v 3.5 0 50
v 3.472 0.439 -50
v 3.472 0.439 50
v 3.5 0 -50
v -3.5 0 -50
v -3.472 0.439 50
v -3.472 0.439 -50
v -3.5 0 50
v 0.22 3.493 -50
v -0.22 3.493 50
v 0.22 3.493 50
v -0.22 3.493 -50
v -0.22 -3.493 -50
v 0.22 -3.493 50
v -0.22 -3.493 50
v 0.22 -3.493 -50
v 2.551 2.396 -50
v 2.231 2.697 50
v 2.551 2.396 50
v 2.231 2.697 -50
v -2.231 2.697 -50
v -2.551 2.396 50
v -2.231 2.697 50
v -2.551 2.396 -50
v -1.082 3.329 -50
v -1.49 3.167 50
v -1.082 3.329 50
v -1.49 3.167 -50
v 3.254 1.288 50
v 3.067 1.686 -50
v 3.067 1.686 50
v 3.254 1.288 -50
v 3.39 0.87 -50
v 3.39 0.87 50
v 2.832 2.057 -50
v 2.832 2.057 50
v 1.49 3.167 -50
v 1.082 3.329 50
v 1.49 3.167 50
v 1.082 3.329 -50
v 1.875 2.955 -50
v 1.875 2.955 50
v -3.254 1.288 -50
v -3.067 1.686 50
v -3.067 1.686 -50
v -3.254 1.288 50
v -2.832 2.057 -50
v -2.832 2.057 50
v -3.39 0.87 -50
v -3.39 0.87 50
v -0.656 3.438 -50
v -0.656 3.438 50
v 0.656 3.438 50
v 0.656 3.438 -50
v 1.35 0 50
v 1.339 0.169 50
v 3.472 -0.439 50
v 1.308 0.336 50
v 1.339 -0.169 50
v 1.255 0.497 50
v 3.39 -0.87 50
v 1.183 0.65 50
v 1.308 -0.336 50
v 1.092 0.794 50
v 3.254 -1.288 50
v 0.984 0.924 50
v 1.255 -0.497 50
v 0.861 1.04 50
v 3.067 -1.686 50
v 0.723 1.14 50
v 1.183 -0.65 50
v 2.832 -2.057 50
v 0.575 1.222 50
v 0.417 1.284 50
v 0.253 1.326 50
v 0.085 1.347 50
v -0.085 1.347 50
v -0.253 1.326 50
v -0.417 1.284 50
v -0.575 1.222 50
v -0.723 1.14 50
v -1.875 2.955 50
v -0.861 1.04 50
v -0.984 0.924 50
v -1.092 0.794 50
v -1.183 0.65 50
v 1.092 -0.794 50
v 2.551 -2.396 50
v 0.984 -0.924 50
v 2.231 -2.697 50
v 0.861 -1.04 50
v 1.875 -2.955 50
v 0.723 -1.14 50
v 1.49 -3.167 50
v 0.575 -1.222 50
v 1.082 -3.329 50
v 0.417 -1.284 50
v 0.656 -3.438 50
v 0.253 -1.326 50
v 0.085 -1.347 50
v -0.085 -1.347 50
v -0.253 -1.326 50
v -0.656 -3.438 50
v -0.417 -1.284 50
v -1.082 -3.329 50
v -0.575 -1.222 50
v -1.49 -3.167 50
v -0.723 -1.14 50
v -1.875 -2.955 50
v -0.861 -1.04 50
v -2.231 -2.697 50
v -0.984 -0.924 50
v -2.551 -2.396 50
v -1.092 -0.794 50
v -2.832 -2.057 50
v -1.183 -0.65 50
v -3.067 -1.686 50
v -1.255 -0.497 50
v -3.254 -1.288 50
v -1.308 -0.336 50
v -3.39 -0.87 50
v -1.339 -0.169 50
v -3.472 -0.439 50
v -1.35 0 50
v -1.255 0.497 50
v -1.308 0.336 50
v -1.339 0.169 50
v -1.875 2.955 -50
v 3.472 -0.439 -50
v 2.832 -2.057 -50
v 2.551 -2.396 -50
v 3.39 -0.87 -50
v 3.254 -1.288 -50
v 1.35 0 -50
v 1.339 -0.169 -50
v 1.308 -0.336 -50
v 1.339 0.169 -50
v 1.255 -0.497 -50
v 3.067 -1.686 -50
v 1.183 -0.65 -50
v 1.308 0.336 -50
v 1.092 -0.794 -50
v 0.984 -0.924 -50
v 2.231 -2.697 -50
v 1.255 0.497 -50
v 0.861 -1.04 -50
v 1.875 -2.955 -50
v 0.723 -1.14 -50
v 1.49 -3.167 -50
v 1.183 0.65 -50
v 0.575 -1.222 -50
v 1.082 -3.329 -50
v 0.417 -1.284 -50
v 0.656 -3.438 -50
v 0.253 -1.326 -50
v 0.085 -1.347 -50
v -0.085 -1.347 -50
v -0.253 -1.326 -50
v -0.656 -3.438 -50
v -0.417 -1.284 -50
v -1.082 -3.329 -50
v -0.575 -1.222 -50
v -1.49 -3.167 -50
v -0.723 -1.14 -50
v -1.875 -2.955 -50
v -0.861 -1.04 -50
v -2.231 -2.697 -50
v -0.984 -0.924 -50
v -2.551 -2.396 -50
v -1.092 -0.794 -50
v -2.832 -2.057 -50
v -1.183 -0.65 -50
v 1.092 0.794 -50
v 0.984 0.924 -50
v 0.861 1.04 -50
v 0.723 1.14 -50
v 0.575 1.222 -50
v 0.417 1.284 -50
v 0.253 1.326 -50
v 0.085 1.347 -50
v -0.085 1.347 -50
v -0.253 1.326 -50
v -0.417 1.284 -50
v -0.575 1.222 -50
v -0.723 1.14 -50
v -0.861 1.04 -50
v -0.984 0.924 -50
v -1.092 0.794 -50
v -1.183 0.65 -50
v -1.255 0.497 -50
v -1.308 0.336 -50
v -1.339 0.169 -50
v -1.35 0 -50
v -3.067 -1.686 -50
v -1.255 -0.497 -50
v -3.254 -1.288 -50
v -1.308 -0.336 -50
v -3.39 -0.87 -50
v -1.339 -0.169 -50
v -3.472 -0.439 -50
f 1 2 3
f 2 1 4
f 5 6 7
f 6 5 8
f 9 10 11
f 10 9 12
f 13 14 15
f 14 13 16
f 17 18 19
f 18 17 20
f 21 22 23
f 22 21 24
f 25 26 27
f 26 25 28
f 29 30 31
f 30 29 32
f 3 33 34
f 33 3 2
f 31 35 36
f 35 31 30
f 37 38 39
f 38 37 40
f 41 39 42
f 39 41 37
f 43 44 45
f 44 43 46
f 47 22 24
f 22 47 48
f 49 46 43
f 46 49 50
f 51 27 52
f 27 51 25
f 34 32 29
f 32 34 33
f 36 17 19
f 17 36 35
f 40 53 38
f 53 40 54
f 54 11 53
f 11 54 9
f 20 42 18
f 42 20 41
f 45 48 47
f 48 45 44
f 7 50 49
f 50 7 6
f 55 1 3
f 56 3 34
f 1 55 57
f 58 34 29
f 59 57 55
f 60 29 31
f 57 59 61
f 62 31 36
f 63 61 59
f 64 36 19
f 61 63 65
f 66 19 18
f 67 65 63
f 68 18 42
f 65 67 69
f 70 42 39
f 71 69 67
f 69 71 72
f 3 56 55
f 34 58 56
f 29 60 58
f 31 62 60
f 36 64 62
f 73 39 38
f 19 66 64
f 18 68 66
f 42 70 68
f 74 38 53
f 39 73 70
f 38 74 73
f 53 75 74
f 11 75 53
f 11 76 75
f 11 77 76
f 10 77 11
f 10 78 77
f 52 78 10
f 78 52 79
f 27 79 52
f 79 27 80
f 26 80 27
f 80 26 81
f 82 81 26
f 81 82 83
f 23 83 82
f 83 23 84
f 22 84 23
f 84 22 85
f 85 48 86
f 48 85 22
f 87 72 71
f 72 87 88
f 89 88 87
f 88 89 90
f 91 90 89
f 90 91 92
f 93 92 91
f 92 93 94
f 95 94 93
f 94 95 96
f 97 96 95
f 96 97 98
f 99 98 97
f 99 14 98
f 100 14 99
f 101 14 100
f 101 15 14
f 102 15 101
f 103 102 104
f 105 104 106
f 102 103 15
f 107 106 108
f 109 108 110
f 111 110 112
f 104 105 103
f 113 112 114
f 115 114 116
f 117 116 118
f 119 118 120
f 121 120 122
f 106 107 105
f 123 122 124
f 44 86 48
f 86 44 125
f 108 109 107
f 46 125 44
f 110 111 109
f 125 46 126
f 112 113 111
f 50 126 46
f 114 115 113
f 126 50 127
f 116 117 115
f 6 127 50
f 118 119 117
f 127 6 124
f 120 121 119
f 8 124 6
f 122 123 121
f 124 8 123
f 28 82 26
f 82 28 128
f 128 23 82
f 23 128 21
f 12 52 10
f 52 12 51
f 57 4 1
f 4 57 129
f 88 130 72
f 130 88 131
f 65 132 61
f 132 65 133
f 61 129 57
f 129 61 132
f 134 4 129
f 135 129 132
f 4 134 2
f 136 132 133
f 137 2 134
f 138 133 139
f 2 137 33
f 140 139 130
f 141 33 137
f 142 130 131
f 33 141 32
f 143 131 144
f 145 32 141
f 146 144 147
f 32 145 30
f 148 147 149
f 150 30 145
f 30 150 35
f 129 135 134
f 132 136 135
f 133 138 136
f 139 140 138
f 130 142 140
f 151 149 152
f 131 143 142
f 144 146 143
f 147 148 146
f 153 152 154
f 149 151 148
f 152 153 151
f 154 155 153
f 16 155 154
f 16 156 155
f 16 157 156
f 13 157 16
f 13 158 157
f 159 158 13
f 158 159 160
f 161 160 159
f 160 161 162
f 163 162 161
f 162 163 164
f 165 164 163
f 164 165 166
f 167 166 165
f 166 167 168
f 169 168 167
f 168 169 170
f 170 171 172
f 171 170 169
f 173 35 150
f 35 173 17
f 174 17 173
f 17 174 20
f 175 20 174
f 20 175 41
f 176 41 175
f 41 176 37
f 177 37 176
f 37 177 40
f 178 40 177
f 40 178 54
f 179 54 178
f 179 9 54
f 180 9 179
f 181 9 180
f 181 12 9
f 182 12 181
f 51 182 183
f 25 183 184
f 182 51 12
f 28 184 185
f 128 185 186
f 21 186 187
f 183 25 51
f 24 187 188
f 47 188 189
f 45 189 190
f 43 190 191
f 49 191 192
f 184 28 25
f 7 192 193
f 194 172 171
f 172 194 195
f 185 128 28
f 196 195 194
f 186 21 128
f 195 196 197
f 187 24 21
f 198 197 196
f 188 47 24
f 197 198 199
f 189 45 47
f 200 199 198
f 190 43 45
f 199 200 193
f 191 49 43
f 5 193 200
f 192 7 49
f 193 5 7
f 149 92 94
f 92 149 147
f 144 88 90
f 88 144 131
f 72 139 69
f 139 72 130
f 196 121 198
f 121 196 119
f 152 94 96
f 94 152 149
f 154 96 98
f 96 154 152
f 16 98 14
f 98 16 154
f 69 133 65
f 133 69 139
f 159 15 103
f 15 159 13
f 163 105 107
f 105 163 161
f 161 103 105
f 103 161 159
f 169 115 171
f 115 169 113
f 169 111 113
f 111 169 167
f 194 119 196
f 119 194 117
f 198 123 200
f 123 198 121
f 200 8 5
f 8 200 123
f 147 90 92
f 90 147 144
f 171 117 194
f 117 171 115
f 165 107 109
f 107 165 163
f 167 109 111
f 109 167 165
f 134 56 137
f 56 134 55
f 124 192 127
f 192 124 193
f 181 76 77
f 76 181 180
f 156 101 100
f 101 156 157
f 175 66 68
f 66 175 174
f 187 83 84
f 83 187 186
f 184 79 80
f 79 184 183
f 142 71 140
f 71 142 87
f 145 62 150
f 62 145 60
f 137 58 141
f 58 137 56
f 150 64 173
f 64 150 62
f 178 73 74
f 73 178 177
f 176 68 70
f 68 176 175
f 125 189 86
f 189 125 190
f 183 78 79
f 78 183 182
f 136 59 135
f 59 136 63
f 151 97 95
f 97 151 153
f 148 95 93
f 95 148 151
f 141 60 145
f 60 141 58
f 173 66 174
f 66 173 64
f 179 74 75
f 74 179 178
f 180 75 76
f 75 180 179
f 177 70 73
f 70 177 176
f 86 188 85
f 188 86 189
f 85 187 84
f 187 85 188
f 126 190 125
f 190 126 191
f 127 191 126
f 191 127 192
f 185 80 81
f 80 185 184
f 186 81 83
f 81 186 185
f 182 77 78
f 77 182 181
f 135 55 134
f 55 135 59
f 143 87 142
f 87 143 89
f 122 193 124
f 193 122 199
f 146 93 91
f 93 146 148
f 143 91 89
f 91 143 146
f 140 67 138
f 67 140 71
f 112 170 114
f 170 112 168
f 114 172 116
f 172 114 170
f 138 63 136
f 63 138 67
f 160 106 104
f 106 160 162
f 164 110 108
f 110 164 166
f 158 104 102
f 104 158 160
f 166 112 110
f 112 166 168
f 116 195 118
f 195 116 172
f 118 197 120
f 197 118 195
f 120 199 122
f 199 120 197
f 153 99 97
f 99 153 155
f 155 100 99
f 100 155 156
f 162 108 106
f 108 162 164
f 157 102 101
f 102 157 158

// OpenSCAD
$fn = 50;


difference() {
	union() {
		translate(v = [0, 0, -50.0000000000]) {
			cylinder(h = 100, r = 3.5000000000);
		}
	}
	union() {
		translate(v = [0, 0, -100.0000000000]) {
			cylinder(h = 200, r = 1.3500000000);
		}
	}
}
